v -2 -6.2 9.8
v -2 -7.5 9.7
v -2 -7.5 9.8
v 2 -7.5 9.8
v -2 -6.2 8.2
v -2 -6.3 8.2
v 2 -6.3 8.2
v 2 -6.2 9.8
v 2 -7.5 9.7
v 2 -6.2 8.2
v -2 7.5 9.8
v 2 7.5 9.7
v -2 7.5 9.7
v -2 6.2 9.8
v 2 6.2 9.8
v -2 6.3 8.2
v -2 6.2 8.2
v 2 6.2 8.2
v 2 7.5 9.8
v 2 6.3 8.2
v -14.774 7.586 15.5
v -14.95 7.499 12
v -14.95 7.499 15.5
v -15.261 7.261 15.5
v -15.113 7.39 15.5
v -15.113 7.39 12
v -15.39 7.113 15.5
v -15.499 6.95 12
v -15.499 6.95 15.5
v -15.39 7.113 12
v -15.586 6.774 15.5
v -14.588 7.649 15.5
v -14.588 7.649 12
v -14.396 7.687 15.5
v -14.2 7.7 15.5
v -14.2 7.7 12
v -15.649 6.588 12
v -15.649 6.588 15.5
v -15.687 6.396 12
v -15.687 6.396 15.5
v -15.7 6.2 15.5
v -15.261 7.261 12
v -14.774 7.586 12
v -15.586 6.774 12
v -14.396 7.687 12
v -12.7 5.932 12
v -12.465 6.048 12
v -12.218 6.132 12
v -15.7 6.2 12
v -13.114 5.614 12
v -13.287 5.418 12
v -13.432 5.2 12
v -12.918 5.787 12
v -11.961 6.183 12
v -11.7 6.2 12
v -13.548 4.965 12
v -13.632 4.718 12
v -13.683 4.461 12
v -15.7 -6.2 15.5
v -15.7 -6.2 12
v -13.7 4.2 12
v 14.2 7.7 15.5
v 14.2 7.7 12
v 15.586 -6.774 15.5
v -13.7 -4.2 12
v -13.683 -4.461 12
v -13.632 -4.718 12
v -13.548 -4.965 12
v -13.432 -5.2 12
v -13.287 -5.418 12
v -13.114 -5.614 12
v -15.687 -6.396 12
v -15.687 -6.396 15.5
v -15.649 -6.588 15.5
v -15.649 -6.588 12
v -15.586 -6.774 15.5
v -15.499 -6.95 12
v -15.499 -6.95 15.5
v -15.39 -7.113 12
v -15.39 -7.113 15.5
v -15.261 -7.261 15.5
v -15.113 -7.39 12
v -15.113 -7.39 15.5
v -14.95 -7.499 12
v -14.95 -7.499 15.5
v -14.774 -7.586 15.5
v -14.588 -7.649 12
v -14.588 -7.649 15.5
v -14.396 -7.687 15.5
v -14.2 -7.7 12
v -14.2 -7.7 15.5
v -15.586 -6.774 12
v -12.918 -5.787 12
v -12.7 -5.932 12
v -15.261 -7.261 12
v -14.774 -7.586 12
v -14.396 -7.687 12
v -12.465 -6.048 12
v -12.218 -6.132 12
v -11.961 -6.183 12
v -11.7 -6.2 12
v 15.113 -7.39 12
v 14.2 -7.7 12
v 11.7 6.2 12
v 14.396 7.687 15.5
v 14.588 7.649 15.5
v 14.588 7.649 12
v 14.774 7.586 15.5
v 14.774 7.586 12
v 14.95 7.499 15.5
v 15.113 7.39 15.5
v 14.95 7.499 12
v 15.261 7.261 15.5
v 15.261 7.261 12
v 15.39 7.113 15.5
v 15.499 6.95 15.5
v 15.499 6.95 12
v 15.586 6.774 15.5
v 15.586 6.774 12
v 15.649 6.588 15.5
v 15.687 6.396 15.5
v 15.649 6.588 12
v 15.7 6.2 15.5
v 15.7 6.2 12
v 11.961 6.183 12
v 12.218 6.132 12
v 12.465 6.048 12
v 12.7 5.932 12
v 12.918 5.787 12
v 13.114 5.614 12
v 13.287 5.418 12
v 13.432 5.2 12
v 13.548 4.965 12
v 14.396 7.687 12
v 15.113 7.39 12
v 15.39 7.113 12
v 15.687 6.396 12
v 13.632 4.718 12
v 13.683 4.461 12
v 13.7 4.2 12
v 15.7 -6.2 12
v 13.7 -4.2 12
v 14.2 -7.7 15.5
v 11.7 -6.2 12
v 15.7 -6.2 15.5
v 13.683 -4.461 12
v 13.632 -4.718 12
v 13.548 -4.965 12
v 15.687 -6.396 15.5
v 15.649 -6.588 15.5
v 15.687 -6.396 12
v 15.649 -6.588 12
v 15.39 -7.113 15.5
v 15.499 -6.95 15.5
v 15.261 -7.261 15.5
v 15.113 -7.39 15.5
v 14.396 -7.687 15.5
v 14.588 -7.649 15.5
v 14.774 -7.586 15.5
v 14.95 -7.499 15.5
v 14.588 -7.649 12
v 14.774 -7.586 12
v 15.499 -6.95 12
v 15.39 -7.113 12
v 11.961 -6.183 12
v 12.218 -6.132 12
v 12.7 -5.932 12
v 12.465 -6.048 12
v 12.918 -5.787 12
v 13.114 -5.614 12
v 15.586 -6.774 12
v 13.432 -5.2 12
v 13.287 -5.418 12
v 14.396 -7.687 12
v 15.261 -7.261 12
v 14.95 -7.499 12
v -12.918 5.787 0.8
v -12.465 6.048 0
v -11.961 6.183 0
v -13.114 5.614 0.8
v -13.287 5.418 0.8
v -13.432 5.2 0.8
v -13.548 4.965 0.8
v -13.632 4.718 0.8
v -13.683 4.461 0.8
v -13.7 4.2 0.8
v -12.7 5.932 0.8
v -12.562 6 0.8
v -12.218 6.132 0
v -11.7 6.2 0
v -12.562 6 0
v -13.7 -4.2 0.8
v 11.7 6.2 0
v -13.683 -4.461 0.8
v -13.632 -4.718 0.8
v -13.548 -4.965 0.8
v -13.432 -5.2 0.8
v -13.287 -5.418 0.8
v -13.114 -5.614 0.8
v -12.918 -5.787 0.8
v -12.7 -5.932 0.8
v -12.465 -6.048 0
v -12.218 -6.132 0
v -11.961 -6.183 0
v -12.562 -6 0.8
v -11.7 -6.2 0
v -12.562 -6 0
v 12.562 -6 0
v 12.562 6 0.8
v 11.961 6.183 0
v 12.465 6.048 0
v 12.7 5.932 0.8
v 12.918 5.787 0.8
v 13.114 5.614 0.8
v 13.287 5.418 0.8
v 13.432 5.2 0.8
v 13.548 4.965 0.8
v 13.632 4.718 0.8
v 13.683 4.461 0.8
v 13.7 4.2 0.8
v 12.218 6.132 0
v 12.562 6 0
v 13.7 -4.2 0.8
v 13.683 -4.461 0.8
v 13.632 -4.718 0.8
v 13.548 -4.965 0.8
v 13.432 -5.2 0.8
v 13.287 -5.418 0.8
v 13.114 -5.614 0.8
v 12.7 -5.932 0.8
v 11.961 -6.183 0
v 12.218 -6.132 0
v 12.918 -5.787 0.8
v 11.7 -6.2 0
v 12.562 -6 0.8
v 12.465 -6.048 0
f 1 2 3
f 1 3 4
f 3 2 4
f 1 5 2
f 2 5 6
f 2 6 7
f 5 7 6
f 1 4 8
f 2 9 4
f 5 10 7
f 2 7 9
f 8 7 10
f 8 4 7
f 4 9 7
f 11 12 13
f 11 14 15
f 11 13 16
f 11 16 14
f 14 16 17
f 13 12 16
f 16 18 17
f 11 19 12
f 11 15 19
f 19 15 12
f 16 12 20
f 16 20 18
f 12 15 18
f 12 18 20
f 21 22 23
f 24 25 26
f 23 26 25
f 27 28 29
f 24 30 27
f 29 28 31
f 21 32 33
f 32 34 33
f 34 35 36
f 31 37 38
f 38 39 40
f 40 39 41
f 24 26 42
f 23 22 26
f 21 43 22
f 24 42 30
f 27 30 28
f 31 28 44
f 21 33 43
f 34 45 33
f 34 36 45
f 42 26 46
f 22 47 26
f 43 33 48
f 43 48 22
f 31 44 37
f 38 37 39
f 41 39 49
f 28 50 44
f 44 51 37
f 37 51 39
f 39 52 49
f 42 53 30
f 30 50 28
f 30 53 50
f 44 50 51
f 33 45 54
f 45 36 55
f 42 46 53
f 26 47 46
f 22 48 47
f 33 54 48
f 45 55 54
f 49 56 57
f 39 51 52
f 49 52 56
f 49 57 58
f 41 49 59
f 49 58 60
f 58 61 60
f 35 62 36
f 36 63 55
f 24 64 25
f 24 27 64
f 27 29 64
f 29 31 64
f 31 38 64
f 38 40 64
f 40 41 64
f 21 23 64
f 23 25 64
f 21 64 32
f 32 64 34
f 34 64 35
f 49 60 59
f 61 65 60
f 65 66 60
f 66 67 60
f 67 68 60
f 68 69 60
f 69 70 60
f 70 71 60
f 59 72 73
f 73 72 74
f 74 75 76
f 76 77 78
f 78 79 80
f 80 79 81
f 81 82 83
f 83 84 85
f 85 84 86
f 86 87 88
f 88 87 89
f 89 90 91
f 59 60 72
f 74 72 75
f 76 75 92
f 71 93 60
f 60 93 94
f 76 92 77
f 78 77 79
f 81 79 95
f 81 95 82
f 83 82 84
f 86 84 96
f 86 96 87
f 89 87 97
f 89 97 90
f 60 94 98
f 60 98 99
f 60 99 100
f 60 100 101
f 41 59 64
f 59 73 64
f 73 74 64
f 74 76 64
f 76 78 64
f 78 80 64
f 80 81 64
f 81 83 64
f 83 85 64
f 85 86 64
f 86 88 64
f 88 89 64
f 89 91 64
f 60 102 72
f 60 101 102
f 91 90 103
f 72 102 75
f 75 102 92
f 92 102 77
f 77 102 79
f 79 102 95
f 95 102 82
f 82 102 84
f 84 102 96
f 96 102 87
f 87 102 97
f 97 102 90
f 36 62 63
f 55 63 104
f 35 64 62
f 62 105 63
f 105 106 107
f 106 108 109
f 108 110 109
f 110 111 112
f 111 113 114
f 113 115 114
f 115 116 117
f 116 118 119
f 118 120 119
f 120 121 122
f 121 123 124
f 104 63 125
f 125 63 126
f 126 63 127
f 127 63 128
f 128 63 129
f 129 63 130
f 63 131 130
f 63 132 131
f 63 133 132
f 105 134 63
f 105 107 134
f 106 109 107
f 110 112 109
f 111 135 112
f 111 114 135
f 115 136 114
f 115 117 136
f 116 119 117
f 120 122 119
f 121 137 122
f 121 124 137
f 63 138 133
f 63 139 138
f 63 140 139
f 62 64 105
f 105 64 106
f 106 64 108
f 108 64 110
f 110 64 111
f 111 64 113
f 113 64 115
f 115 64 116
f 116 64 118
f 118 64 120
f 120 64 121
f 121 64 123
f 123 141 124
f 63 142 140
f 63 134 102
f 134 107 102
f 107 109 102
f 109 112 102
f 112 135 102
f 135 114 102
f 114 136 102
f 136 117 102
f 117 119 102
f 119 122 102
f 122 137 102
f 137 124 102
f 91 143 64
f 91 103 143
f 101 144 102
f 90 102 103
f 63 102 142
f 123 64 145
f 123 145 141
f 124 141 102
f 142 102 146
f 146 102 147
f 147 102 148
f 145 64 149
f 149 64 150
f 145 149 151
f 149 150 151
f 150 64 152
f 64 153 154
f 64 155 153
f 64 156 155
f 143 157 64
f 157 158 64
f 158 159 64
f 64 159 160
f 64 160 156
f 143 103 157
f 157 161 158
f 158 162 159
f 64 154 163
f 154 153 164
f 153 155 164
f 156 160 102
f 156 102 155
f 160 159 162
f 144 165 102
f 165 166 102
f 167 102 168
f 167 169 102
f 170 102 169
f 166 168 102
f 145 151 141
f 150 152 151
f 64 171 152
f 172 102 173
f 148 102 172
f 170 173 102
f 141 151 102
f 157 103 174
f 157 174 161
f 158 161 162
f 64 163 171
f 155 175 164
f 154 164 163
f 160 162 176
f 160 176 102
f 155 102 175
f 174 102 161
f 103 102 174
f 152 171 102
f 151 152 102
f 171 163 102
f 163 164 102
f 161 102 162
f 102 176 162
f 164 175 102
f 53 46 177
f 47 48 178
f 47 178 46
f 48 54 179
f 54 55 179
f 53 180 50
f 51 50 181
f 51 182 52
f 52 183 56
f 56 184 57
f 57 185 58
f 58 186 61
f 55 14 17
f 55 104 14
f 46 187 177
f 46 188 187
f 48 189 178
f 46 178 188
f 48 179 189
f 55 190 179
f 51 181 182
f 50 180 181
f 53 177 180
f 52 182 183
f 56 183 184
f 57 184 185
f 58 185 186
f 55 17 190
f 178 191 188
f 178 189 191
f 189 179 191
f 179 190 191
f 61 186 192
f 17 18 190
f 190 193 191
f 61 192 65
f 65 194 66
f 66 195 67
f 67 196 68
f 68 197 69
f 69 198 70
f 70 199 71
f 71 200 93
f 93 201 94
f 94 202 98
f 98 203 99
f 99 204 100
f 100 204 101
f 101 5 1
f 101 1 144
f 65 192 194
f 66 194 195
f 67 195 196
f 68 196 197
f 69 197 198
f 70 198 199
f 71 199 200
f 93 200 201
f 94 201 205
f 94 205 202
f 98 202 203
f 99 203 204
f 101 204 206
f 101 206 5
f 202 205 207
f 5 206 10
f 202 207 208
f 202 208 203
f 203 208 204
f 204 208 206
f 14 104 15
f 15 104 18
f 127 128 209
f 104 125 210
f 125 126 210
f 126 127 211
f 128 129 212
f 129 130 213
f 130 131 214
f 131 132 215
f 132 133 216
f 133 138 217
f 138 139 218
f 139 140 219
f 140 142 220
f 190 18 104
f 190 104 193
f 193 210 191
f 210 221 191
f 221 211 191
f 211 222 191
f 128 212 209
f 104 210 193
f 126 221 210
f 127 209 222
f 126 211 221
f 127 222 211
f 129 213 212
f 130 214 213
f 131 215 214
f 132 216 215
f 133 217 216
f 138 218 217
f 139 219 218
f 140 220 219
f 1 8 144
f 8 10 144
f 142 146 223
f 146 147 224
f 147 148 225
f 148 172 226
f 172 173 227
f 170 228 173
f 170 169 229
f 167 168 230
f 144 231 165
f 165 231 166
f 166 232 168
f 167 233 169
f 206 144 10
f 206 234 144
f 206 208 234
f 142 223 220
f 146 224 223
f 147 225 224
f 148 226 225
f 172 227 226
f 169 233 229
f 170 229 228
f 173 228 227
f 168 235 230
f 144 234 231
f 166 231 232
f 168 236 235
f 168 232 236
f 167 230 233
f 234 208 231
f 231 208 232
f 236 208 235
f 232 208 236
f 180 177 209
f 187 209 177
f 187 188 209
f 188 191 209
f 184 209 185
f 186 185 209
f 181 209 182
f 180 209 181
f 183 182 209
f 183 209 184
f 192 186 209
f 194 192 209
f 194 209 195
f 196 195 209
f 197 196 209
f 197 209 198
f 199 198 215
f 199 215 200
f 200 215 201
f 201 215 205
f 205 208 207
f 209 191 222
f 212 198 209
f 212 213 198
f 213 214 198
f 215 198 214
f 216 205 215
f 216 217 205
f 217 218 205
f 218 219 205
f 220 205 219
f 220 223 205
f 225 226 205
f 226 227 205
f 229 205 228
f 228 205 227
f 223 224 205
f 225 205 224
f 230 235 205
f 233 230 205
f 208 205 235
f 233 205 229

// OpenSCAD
// file: insert_base.scad
// ============================================
// MODULAR CABLE ORGANIZER - BASE INSERT MODULE
// ============================================
// This is the parent module for all insert types
// Include this file and call insert_with_port() with a port shape
// ============================================

include <parameters.scad>

// === BASE INSERT WITH CUSTOM BODY DEPTH ===
module insert_blank_custom(body_depth) {
    union() {
        // Base plate (sits in frame slot)
        rounded_box_rect(insert_width, insert_height, insert_base_depth, 1.5);
        
        // Body (protrudes out front) - custom depth
        translate([0, 0, insert_base_depth])
            rounded_box_rect(insert_body_width, insert_body_height, body_depth, 2);
        
        // Snap tabs on all 4 sides
        snap_tabs_all();
    }
}

// === BASE INSERT (default depth - for backwards compatibility) ===
module insert_blank() {
    insert_blank_custom(insert_body_depth);
}

// === INSERT WITH THROUGH-HOLE PORT (custom depth) ===
// Pass body_depth and a 2D shape as children
module insert_with_port_custom(body_depth) {
    total_depth = insert_base_depth + body_depth;
    difference() {
        insert_blank_custom(body_depth);
        
        // Cut port hole ALL THE WAY through (tube shape)
        translate([0, 0, -0.1])
            linear_extrude(total_depth + 0.2)
            offset(r=port_clearance)  // Add clearance to port opening
            children();
    }
}

// === INSERT WITH THROUGH-HOLE PORT (default depth) ===
module insert_with_port() {
    insert_with_port_custom(insert_body_depth) children();
}

// === PRE-MADE INSERT MODULES WITH CORRECT DEPTHS ===
module insert_usbc() {
    insert_with_port_custom(usbc_body_depth) port_usbc();
}

module insert_usba() {
    insert_with_port_custom(usba_body_depth) port_usba();
}

module insert_usb_mini() {
    insert_with_port_custom(usb_mini_body_depth) port_usb_mini();
}

module insert_usb_micro() {
    insert_with_port_custom(usb_micro_body_depth) port_usb_micro();
}

module insert_usb_b() {
    insert_with_port_custom(usb_b_body_depth) port_usb_b();
}

module insert_lightning() {
    insert_with_port_custom(lightning_body_depth) port_lightning();
}

module insert_hdmi() {
    insert_with_port_custom(hdmi_body_depth) port_hdmi();
}

module insert_audio_jack() {
    insert_with_port_custom(audio_jack_body_depth) port_audio_jack();
}

// === SNAP TABS (on neck/body - catch on frame cutouts) ===
// Tabs are on the body, positioned to engage with frame wall cutouts
module snap_tabs_all() {
    // Position tabs up on body (clear of base/frame)
    tab_z = insert_base_depth + snap_tab_offset;
    
    // Tabs on all 4 sides of the body
    for (angle = [0, 90, 180, 270]) {
        rotate([0, 0, angle])
            translate([0, insert_body_height/2, tab_z])
            neck_snap_tab();
    }
}

module neck_snap_tab() {
    // Wedge shape (FLIPPED): 
    // - Peak/taper on BOTTOM - slides past back plate when inserting
    // - Flat on TOP - catches and holds
    hull() {
        // Peak of wedge (protruding, at BOTTOM of tab)
        translate([-snap_tab_width/2, snap_tab_protrude, 0])
            cube([snap_tab_width, 0.1, 0.1]);
        // Flat top (at body surface, TOP of tab)
        translate([-snap_tab_width/2, 0, snap_tab_thick])
            cube([snap_tab_width, 0.1, 0.1]);
        // Base of wedge (at body surface, bottom)
        translate([-snap_tab_width/2, 0, 0])
            cube([snap_tab_width, 0.1, 0.1]);
    }
}

module snap_tab_horizontal() {
    hull() {
        translate([0, -snap_tab_protrude/2, 0])
            cube([snap_tab_width, 0.1, snap_tab_thick], center=true);
        translate([0, snap_tab_protrude/2, snap_tab_thick * 0.2])
            cube([snap_tab_width, 0.1, snap_tab_thick * 0.6], center=true);
    }
}

module snap_tab_vertical() {
    hull() {
        translate([-snap_tab_protrude/2, 0, 0])
            cube([0.1, snap_tab_width, snap_tab_thick], center=true);
        translate([snap_tab_protrude/2, 0, snap_tab_thick * 0.2])
            cube([0.1, snap_tab_width, snap_tab_thick * 0.6], center=true);
    }
}

// === UTILITY MODULES ===
module rounded_box_rect(w, d, h, r) {
    translate([0, 0, h/2])
        hull() {
            for (x = [-1, 1], y = [-1, 1])
                translate([x * (w/2 - r), y * (d/2 - r), 0])
                    cylinder(h=h, r=r, center=true);
        }
}

// === PORT SHAPE MODULES (2D) ===
// These define the cutout shapes for each connector type

module port_rounded_rect(w, h, r) {
    // Standard rounded rectangle
    hull() {
        for (x = [-1, 1], y = [-1, 1])
            translate([x * (w/2 - r), y * (h/2 - r)])
                circle(r=r);
    }
}

module port_usbc() {
    port_rounded_rect(usbc_w, usbc_h, usbc_r);
}

module port_usba() {
    port_rounded_rect(usba_w, usba_h, usba_r);
}

module port_usb_mini() {
    port_rounded_rect(usb_mini_w, usb_mini_h, usb_mini_r);
}

module port_usb_micro() {
    port_rounded_rect(usb_micro_w, usb_micro_h, usb_micro_r);
}

module port_usb_b() {
    // USB-B has beveled top corners
    hull() {
        // Bottom corners (full radius)
        for (x = [-1, 1])
            translate([x * (usb_b_w/2 - usb_b_r), -(usb_b_h/2 - usb_b_r)])
                circle(r=usb_b_r);
        // Top corners (chamfered - moved inward)
        for (x = [-1, 1])
            translate([x * (usb_b_w/2 - usb_b_r - 1), (usb_b_h/2 - usb_b_r)])
                circle(r=usb_b_r);
    }
}

module port_lightning() {
    port_rounded_rect(lightning_w, lightning_h, lightning_r);
}

module port_hdmi() {
    // HDMI is tapered (wider at top)
    hull() {
        // Top (wider)
        for (x = [-1, 1])
            translate([x * (hdmi_w/2 - hdmi_r), (hdmi_h/2 - hdmi_r)])
                circle(r=hdmi_r);
        // Bottom (narrower)
        for (x = [-1, 1])
            translate([x * (hdmi_w/2 - hdmi_r - 1), -(hdmi_h/2 - hdmi_r)])
                circle(r=hdmi_r);
    }
}

module port_audio_jack() {
    circle(d=audio_jack_dia);
}

module port_label_recess() {
    // Shallow rectangular recess for labels
    square([label_w, label_h], center=true);
}

// === RENDER (for testing this file directly) ===
// insert_blank();
// file: parameters.scad
// ============================================
// MODULAR CABLE ORGANIZER - SHARED PARAMETERS
// ============================================
// All dimensions in mm - include this in all files
// ============================================

$fn = 48;

// === TOLERANCES ===
clearance = 0.3;
port_clearance = 0.1;  // Extra clearance for port openings (reduced - 0.2 was too loose for USB-C)
wall = 1.6;

// === SLOT DIMENSIONS (2:1 aspect ratio) - scaled to 2/3 ===
slot_width = 32;  // Reduced by 1mm for more compact insert
slot_height = 16;  // Reduced by 1mm for more compact insert
slot_depth = 4;  // Reduced from 6mm - less frame depth needed

// === FRAME STRUCTURE ===
frame_wall = 0.5;   // Reduced for more compact frame
frame_border = 8;  // Increased by 10mm for mounting holes with countersink
frame_back = 2;     // Slightly thicker for snap catch strength
mount_hole_dia = 3;
countersink_dia = 6;  // Diameter of countersink for screw heads
countersink_depth = 2;  // Depth of countersink

// === GRID ===
grid_cols = 2;
grid_rows = 2;

// === INSERT BASE DIMENSIONS ===
insert_width = slot_width - (2 * clearance);
insert_height = slot_height - (2 * clearance);
insert_base_depth = slot_depth - 0.5;

// === INSERT BODY (protrudes from frame) ===
insert_body_width = insert_width - 4;
insert_body_height = insert_height - 3;
insert_body_depth = 12;  // Deep enough to accommodate male cable connectors
insert_top_thick = 1.5;  // Top platform thickness

// === SNAP TABS (on neck/body - catch on back plate) ===
snap_tab_width = 4;
snap_tab_protrude = 1.2;  // How far tab sticks out from body
snap_tab_thick = 1.5;     // Z thickness of tab
snap_tab_offset = 2.2;      // Distance from base to tab bottom on insert (increased to clear frame)

// === CONNECTOR PORT DIMENSIONS & BODY DEPTHS ===
// Port dimensions from reference blueprints
// Body depths sized to match typical male connector lengths

// USB-C: 8.4 x 2.6mm, male connector ~9mm
usbc_w = 8.4;
usbc_h = 2.6;
usbc_r = 1.0;
usbc_body_depth = 9;

// USB-A: 14.0 x 6.5mm, male connector ~13mm
usba_w = 14.0;
usba_h = 6.5;
usba_r = 0.5;
usba_body_depth = 13;

// USB Mini: 6.9 x 3.0mm, male connector ~9mm
usb_mini_w = 6.9;
usb_mini_h = 3.0;
usb_mini_r = 0.5;
usb_mini_body_depth = 9;

// USB Micro: 6.9 x 1.8mm, male connector ~7mm
usb_micro_w = 6.9;
usb_micro_h = 1.8;
usb_micro_r = 0.3;
usb_micro_body_depth = 7;

// USB-B: 8.0 x 7.5mm, male connector ~14mm
usb_b_w = 8.0;
usb_b_h = 7.5;
usb_b_r = 1.0;
usb_b_body_depth = 14;

// Lightning: 6.7 x 1.5mm, male connector ~8mm
lightning_w = 6.7;
lightning_h = 1.5;
lightning_r = 0.5;
lightning_body_depth = 8;

// HDMI: 14.0 x 4.5mm, male connector ~16mm
hdmi_w = 14.0;
hdmi_h = 4.5;
hdmi_r = 0.5;
hdmi_body_depth = 16;

// 3.5mm Audio Jack: male plug ~14mm
audio_jack_dia = 6.0;
audio_jack_body_depth = 14;

// Blank/Label: recessed area for label
label_w = 30;
label_h = 12;
label_depth = 0.8;

// === CALCULATED VALUES ===
frame_total_depth = frame_back + slot_depth;
grid_width = (grid_cols * slot_width) + ((grid_cols - 1) * frame_wall);
grid_height = (grid_rows * slot_height) + ((grid_rows - 1) * frame_wall);
frame_width = grid_width + (2 * frame_border);
frame_height_total = grid_height + (2 * frame_border);
insert_total_depth = insert_base_depth + insert_body_depth;
// main file
// ============================================
// PRINT FILE: Blank Label Insert
// ============================================
// Body depth: 12mm (default depth)
// Has recessed area for label
// Print with flat side DOWN (on bed)
// No supports needed
// ============================================

include <parameters.scad>
include <insert_base.scad>

// Blank Label insert - oriented for printing (flat side down)
total_depth = insert_base_depth + insert_body_depth;

module insert_blank_label() {
    difference() {
        insert_blank();
        translate([0, 0, insert_total_depth - label_depth])
            linear_extrude(label_depth + 0.1)
            square([label_w, label_h], center=true);
    }
}

rotate([180, 0, 0])
translate([0, 0, -total_depth])
    insert_blank_label();
